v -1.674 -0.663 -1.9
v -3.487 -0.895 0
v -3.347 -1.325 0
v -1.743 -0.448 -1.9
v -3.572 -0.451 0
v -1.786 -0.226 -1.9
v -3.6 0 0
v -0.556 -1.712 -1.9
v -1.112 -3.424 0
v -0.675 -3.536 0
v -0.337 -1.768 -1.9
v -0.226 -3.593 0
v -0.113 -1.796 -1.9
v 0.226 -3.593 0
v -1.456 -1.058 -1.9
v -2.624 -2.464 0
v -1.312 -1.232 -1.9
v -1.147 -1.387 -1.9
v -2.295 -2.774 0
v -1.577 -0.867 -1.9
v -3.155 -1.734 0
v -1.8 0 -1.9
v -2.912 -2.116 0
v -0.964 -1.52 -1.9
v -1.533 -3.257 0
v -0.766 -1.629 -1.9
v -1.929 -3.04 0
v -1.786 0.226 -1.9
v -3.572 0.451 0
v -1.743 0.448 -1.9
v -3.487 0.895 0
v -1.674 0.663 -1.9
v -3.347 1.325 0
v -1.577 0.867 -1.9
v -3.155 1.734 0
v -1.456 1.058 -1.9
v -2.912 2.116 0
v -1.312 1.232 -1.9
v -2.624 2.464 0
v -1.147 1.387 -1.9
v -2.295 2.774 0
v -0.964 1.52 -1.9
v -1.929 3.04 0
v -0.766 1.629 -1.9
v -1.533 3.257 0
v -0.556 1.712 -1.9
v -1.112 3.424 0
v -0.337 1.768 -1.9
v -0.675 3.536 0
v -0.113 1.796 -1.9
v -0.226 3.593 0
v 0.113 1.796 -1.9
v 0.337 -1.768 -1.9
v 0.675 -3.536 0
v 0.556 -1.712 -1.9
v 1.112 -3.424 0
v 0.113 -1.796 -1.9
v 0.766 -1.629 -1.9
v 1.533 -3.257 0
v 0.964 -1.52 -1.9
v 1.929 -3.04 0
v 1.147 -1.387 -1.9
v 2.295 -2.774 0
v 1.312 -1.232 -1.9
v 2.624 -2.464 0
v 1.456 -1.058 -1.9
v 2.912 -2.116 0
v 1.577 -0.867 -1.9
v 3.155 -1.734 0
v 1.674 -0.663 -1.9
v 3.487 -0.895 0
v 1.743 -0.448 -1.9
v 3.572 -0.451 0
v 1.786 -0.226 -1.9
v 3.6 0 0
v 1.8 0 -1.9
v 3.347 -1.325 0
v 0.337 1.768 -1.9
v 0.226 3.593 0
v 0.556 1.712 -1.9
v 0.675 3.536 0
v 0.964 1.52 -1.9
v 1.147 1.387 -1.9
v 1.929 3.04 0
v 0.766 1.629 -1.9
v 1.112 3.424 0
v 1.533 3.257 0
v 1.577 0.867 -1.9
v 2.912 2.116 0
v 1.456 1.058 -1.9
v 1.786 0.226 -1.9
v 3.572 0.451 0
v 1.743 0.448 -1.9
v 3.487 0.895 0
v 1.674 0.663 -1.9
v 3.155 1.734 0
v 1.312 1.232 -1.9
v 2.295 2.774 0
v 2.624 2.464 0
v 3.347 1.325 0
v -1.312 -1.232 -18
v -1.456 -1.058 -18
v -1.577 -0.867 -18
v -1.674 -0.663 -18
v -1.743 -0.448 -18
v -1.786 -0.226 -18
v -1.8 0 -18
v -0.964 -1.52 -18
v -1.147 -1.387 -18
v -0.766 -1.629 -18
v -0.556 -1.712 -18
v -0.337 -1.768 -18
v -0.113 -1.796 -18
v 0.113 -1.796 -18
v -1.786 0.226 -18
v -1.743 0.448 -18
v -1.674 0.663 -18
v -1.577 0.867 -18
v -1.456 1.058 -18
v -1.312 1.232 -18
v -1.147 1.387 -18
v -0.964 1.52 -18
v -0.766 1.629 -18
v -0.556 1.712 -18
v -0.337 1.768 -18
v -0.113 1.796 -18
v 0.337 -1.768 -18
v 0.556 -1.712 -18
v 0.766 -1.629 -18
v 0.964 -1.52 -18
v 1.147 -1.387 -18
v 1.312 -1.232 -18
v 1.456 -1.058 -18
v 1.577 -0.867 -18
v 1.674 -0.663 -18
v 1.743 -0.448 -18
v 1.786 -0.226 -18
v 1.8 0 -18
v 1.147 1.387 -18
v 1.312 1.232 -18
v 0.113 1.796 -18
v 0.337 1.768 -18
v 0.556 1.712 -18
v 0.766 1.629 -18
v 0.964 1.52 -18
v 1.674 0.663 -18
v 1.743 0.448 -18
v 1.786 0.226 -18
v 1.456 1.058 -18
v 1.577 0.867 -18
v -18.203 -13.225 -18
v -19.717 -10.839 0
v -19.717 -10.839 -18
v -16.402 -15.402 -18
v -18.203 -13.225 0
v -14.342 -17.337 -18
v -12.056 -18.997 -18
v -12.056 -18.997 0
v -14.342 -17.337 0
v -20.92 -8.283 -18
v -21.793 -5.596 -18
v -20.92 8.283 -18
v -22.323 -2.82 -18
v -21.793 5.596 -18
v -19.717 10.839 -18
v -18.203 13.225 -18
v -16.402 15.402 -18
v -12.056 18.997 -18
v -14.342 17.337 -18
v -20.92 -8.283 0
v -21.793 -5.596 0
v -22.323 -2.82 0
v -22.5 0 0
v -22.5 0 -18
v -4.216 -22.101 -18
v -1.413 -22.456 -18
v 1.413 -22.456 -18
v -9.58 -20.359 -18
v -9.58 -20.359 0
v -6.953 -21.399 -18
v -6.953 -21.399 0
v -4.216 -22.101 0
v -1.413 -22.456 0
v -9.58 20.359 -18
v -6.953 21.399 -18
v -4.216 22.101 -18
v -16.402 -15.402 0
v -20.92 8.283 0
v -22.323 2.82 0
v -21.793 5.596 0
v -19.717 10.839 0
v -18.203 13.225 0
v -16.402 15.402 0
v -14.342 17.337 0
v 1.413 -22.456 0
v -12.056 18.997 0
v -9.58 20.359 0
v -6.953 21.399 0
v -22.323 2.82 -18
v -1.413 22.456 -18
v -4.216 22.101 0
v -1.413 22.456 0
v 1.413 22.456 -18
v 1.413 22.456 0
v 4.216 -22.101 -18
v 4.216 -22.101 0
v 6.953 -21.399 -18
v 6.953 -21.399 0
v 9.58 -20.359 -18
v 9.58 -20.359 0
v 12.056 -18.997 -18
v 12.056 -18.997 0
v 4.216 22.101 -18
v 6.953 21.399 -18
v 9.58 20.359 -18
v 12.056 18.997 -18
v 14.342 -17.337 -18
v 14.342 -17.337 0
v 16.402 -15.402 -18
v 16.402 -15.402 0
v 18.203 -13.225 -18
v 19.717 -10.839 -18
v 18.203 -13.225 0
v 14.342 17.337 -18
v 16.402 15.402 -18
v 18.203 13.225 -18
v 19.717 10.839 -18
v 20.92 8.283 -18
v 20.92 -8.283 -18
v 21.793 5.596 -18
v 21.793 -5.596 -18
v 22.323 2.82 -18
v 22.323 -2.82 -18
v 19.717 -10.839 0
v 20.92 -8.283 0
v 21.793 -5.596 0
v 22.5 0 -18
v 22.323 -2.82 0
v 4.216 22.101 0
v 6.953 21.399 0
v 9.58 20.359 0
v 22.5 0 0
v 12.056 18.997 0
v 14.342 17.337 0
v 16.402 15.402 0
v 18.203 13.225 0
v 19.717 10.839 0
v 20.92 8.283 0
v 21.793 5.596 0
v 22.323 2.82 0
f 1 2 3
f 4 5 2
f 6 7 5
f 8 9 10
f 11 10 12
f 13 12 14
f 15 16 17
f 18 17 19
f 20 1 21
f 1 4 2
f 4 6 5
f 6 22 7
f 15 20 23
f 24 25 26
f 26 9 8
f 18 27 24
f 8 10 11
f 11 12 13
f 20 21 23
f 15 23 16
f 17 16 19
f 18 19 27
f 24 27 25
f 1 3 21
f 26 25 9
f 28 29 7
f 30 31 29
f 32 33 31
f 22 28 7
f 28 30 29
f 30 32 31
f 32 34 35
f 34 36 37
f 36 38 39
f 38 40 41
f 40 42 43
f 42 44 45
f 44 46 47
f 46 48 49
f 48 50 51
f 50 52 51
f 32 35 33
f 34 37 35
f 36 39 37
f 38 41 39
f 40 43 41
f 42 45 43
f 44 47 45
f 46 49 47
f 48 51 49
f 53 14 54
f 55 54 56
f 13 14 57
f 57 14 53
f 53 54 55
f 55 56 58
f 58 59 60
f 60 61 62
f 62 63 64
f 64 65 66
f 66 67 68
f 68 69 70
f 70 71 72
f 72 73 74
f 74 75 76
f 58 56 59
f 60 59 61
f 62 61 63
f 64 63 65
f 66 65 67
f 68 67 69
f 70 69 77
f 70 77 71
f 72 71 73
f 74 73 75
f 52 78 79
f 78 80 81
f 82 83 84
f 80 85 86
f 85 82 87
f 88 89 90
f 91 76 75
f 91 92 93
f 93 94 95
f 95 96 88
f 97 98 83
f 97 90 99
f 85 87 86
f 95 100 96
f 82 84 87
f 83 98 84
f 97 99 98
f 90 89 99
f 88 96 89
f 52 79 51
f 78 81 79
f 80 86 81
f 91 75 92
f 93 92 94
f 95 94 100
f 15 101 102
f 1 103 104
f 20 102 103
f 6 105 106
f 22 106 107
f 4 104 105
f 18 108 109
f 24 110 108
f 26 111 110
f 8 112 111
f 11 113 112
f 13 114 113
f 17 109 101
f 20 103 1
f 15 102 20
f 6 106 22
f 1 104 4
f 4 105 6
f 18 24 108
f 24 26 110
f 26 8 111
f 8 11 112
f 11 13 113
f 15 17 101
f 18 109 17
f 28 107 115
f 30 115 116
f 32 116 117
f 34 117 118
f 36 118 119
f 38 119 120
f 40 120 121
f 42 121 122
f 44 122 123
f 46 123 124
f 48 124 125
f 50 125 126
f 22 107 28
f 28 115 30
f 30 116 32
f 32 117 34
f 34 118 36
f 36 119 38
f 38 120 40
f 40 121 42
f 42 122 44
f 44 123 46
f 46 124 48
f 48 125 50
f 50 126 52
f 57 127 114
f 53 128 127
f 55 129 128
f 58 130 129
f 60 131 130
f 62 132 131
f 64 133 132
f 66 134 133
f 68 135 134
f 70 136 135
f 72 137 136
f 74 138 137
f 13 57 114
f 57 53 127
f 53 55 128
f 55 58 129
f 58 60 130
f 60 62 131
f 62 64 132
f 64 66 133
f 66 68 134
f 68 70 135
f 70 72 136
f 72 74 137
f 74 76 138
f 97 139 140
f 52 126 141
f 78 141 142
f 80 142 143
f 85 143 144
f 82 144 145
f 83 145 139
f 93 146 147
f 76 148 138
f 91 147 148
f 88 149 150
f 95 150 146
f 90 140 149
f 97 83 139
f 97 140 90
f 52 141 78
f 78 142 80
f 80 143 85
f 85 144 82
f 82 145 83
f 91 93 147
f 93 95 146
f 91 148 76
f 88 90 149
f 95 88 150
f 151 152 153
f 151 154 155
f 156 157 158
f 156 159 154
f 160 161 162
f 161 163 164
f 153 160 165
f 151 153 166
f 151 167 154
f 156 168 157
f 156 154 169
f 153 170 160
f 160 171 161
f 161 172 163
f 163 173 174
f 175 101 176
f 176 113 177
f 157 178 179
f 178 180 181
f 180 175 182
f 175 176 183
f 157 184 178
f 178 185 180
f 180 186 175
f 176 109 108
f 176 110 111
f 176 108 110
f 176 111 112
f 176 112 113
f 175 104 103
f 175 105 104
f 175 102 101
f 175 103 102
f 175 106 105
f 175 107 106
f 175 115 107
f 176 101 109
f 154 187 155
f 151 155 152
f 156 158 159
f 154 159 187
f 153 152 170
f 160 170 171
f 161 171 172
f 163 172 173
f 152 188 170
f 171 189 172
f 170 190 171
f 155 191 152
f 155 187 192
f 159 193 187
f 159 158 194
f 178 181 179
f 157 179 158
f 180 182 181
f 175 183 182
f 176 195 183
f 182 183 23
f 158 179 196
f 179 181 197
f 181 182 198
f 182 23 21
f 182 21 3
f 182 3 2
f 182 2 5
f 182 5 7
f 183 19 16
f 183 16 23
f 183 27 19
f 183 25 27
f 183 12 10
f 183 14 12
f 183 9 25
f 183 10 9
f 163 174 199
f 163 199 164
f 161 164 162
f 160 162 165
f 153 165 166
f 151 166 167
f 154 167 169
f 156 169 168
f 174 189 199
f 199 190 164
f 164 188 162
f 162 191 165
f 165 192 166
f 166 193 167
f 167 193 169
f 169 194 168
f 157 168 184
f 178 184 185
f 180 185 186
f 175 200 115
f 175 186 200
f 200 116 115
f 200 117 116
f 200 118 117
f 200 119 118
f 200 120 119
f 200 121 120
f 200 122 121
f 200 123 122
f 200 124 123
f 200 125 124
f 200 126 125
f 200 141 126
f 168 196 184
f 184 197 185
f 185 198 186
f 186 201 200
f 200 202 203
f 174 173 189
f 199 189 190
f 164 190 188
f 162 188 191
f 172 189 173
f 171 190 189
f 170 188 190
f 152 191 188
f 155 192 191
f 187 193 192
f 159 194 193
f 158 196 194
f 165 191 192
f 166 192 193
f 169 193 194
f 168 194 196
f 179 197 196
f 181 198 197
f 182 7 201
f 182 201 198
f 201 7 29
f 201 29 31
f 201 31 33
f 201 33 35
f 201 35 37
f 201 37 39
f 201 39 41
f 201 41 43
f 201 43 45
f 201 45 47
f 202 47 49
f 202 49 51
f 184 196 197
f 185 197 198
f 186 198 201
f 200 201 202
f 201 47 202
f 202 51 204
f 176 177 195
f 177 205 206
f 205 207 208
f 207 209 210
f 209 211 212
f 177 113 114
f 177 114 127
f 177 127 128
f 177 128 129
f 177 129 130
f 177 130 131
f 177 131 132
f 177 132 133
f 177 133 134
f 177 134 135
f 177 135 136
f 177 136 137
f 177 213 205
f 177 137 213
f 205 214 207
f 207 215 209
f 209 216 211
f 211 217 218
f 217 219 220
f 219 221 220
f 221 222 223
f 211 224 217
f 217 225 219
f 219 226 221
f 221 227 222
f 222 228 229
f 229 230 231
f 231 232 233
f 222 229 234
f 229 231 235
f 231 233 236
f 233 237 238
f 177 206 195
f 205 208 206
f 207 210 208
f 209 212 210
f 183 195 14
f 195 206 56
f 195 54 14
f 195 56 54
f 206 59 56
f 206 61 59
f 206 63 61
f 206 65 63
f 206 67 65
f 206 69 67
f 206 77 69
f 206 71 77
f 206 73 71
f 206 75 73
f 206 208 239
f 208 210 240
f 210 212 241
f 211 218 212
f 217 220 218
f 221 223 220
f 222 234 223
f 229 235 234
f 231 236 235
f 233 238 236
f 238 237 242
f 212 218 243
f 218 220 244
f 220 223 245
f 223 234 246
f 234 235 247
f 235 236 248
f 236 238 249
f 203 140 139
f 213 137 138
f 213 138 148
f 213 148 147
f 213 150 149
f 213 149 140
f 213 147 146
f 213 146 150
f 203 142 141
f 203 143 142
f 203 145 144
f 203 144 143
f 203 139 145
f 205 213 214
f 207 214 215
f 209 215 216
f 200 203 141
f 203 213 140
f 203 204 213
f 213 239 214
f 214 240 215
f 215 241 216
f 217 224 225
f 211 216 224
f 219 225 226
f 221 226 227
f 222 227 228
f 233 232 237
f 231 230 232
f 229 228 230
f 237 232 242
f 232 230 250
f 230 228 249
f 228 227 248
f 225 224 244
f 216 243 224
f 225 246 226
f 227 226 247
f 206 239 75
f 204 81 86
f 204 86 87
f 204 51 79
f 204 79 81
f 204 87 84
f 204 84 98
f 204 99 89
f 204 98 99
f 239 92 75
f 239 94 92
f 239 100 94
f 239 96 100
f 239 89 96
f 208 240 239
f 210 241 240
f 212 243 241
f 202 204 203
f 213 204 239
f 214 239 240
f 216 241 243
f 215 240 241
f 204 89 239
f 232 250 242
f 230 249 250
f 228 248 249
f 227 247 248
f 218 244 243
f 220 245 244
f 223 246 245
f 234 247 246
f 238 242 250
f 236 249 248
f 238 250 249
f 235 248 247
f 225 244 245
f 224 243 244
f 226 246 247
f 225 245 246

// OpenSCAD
$fn = 50;


difference() {
	union() {
		translate(v = [0, 0, -18.0000000000]) {
			cylinder(h = 18, r = 22.5000000000);
		}
	}
	union() {
		translate(v = [0, 0, 0]) {
			rotate(a = [0, 0, 0]) {
				difference() {
					union() {
						translate(v = [0, 0, -21.0000000000]) {
							cylinder(h = 21, r = 1.5000000000);
						}
						translate(v = [0, 0, -1.9000000000]) {
							cylinder(h = 1.9000000000, r1 = 1.8000000000, r2 = 3.6000000000);
						}
						translate(v = [0, 0, -21.0000000000]) {
							cylinder(h = 21, r = 1.8000000000);
						}
						translate(v = [0, 0, -21.0000000000]) {
							cylinder(h = 21, r = 1.5000000000);
						}
					}
					union();
				}
			}
		}
	}
}
